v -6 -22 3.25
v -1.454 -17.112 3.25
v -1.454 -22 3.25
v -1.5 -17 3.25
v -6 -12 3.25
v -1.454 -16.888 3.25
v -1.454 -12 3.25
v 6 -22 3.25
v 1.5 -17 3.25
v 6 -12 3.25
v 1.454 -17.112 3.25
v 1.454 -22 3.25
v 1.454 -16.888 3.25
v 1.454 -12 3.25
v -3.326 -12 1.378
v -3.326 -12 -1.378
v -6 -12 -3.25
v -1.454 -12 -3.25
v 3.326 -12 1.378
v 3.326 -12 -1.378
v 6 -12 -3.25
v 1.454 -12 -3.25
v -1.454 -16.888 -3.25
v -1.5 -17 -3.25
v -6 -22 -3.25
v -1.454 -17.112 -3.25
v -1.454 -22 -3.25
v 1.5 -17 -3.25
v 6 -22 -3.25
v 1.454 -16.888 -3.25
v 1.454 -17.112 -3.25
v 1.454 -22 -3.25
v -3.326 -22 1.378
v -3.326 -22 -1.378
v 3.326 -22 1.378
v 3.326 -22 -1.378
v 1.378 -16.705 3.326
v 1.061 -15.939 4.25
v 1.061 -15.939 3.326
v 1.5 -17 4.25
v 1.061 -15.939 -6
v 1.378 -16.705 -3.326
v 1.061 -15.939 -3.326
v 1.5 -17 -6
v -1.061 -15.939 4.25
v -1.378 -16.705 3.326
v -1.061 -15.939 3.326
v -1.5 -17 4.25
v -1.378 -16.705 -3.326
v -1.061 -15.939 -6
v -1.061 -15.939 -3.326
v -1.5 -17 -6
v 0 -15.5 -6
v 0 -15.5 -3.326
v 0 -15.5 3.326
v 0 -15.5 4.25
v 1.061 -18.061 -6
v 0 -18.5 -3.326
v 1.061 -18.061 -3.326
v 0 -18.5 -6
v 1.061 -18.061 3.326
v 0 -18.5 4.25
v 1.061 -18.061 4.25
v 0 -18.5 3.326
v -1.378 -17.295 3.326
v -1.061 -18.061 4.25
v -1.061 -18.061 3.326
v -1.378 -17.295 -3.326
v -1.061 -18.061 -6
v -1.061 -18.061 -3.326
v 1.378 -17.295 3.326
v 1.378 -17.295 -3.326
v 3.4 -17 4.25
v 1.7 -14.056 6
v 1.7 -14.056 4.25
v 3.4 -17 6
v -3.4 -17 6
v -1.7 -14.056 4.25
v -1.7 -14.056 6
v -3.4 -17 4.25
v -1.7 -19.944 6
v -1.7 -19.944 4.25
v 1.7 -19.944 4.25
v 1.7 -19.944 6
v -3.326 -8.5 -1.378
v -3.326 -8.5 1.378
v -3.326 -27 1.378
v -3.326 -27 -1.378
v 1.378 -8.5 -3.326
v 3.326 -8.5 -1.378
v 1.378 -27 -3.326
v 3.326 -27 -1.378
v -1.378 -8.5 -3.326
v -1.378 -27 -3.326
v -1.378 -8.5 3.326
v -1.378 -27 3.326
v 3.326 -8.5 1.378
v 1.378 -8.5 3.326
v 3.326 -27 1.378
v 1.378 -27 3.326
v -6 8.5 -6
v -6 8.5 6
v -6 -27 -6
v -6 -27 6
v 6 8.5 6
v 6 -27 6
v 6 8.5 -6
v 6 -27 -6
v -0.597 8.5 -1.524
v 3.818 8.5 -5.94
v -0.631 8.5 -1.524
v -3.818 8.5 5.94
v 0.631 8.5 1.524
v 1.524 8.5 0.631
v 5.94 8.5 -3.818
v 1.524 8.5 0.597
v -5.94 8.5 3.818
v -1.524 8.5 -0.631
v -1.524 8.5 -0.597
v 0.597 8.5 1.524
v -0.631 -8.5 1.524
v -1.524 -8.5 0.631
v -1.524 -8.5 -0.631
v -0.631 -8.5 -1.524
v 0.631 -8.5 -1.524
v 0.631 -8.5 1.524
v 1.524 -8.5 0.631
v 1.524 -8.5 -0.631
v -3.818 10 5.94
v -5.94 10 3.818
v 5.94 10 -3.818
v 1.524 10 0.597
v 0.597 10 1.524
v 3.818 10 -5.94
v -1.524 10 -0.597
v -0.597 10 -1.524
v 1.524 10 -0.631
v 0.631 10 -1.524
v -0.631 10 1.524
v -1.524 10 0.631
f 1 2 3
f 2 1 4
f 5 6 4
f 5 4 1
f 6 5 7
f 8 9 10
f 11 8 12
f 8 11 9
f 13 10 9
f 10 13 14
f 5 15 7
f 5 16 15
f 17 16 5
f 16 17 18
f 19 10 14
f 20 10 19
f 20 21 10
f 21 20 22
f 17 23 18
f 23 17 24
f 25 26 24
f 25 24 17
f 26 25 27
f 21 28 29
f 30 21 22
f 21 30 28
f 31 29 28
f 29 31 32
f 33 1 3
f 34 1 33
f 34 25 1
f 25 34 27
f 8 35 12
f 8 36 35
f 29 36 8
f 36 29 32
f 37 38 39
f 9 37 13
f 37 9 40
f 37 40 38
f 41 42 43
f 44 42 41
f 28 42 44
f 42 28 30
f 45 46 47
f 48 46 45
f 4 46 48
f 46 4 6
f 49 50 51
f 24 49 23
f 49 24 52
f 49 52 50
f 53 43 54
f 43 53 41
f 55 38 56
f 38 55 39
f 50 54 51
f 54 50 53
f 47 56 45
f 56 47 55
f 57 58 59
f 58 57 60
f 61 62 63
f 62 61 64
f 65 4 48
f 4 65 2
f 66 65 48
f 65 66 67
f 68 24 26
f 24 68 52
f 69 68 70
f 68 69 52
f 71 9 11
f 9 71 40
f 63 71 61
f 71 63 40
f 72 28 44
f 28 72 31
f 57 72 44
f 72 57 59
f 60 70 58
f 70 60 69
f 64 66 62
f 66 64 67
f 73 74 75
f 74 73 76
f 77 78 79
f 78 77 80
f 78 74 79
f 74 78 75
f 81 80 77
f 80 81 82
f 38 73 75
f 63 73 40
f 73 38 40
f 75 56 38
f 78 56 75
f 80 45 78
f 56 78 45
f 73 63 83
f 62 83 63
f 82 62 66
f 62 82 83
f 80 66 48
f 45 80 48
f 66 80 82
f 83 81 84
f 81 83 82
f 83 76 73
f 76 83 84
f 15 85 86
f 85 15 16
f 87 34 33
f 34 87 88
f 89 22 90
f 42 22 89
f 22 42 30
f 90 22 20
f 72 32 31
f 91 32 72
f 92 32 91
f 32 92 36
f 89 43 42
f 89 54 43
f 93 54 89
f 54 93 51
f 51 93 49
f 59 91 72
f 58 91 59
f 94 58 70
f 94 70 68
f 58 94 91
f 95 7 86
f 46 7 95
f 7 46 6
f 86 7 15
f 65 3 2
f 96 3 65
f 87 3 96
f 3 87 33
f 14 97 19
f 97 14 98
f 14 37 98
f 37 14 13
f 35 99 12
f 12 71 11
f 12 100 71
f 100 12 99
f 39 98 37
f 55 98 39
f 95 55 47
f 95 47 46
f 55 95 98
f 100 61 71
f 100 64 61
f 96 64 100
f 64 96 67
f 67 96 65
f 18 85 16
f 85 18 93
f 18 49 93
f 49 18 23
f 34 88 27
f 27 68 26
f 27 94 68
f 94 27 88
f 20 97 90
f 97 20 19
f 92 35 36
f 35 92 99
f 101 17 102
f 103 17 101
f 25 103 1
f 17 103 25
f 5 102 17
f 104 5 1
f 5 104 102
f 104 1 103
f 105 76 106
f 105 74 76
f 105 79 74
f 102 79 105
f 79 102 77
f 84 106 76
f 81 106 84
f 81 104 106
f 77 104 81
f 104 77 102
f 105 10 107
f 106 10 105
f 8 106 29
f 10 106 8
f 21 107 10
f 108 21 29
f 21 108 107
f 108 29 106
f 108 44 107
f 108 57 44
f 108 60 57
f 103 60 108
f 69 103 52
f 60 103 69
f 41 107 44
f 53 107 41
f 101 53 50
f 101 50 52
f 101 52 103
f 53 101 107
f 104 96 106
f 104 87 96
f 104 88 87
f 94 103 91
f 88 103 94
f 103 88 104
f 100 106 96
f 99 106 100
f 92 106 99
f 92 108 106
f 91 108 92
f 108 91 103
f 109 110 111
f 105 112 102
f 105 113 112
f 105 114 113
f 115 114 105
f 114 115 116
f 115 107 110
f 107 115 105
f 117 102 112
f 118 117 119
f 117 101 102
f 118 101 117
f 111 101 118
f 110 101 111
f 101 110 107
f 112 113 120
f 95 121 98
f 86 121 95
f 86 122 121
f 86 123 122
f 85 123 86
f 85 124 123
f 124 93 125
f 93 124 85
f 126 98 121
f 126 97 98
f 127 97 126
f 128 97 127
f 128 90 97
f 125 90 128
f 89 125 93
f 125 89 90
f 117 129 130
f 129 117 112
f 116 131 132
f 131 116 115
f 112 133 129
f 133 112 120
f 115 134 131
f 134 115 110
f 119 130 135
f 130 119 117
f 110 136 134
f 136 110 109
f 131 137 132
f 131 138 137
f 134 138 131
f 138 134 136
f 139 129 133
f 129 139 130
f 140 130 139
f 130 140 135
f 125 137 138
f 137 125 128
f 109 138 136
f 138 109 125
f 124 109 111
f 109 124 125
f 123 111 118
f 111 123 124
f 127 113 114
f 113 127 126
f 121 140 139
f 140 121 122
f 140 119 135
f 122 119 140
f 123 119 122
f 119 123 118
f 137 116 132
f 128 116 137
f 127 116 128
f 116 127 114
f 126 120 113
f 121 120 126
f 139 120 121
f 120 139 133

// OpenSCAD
mm=1;
in=25.4;

module rodend() {
    difference(){
        union(){
            cube([12*mm, 20*mm, 12*mm], center=true);           
        }
        union(){
            cube([20*mm, 10*mm, 6.5*mm], center=true);
            cylinder(r=1.5*mm, h=20*mm,center=true,$fn=8);
            translate([0,0,5.5*mm])
            cylinder(r=3.4*mm, h=2.5*mm, center=true, $fn=6);
            rotate([-90,22.5,0])
            cylinder(r=3.6*mm,h=30*mm,$fn=8,center=true);

        }
    }
}

module post() {
    color("red")
    difference(){
        union(){
            cube([12*mm, 17*mm, 12*mm], center=true);
            translate([0,17/2*mm,0])
            rotate([0,45,0])
            cube([13.8*mm,3*mm, 3*mm], center=true);
            
        }
        union(){
            rotate([-90,22.5,0])
            cylinder(r=1.65*mm,h=30*mm,$fn=8,center=true);
            

        }
    }
    
}

intersection(){
    union(){
        translate([0,-17*mm,0])
        rodend();
        post();
    }

}
